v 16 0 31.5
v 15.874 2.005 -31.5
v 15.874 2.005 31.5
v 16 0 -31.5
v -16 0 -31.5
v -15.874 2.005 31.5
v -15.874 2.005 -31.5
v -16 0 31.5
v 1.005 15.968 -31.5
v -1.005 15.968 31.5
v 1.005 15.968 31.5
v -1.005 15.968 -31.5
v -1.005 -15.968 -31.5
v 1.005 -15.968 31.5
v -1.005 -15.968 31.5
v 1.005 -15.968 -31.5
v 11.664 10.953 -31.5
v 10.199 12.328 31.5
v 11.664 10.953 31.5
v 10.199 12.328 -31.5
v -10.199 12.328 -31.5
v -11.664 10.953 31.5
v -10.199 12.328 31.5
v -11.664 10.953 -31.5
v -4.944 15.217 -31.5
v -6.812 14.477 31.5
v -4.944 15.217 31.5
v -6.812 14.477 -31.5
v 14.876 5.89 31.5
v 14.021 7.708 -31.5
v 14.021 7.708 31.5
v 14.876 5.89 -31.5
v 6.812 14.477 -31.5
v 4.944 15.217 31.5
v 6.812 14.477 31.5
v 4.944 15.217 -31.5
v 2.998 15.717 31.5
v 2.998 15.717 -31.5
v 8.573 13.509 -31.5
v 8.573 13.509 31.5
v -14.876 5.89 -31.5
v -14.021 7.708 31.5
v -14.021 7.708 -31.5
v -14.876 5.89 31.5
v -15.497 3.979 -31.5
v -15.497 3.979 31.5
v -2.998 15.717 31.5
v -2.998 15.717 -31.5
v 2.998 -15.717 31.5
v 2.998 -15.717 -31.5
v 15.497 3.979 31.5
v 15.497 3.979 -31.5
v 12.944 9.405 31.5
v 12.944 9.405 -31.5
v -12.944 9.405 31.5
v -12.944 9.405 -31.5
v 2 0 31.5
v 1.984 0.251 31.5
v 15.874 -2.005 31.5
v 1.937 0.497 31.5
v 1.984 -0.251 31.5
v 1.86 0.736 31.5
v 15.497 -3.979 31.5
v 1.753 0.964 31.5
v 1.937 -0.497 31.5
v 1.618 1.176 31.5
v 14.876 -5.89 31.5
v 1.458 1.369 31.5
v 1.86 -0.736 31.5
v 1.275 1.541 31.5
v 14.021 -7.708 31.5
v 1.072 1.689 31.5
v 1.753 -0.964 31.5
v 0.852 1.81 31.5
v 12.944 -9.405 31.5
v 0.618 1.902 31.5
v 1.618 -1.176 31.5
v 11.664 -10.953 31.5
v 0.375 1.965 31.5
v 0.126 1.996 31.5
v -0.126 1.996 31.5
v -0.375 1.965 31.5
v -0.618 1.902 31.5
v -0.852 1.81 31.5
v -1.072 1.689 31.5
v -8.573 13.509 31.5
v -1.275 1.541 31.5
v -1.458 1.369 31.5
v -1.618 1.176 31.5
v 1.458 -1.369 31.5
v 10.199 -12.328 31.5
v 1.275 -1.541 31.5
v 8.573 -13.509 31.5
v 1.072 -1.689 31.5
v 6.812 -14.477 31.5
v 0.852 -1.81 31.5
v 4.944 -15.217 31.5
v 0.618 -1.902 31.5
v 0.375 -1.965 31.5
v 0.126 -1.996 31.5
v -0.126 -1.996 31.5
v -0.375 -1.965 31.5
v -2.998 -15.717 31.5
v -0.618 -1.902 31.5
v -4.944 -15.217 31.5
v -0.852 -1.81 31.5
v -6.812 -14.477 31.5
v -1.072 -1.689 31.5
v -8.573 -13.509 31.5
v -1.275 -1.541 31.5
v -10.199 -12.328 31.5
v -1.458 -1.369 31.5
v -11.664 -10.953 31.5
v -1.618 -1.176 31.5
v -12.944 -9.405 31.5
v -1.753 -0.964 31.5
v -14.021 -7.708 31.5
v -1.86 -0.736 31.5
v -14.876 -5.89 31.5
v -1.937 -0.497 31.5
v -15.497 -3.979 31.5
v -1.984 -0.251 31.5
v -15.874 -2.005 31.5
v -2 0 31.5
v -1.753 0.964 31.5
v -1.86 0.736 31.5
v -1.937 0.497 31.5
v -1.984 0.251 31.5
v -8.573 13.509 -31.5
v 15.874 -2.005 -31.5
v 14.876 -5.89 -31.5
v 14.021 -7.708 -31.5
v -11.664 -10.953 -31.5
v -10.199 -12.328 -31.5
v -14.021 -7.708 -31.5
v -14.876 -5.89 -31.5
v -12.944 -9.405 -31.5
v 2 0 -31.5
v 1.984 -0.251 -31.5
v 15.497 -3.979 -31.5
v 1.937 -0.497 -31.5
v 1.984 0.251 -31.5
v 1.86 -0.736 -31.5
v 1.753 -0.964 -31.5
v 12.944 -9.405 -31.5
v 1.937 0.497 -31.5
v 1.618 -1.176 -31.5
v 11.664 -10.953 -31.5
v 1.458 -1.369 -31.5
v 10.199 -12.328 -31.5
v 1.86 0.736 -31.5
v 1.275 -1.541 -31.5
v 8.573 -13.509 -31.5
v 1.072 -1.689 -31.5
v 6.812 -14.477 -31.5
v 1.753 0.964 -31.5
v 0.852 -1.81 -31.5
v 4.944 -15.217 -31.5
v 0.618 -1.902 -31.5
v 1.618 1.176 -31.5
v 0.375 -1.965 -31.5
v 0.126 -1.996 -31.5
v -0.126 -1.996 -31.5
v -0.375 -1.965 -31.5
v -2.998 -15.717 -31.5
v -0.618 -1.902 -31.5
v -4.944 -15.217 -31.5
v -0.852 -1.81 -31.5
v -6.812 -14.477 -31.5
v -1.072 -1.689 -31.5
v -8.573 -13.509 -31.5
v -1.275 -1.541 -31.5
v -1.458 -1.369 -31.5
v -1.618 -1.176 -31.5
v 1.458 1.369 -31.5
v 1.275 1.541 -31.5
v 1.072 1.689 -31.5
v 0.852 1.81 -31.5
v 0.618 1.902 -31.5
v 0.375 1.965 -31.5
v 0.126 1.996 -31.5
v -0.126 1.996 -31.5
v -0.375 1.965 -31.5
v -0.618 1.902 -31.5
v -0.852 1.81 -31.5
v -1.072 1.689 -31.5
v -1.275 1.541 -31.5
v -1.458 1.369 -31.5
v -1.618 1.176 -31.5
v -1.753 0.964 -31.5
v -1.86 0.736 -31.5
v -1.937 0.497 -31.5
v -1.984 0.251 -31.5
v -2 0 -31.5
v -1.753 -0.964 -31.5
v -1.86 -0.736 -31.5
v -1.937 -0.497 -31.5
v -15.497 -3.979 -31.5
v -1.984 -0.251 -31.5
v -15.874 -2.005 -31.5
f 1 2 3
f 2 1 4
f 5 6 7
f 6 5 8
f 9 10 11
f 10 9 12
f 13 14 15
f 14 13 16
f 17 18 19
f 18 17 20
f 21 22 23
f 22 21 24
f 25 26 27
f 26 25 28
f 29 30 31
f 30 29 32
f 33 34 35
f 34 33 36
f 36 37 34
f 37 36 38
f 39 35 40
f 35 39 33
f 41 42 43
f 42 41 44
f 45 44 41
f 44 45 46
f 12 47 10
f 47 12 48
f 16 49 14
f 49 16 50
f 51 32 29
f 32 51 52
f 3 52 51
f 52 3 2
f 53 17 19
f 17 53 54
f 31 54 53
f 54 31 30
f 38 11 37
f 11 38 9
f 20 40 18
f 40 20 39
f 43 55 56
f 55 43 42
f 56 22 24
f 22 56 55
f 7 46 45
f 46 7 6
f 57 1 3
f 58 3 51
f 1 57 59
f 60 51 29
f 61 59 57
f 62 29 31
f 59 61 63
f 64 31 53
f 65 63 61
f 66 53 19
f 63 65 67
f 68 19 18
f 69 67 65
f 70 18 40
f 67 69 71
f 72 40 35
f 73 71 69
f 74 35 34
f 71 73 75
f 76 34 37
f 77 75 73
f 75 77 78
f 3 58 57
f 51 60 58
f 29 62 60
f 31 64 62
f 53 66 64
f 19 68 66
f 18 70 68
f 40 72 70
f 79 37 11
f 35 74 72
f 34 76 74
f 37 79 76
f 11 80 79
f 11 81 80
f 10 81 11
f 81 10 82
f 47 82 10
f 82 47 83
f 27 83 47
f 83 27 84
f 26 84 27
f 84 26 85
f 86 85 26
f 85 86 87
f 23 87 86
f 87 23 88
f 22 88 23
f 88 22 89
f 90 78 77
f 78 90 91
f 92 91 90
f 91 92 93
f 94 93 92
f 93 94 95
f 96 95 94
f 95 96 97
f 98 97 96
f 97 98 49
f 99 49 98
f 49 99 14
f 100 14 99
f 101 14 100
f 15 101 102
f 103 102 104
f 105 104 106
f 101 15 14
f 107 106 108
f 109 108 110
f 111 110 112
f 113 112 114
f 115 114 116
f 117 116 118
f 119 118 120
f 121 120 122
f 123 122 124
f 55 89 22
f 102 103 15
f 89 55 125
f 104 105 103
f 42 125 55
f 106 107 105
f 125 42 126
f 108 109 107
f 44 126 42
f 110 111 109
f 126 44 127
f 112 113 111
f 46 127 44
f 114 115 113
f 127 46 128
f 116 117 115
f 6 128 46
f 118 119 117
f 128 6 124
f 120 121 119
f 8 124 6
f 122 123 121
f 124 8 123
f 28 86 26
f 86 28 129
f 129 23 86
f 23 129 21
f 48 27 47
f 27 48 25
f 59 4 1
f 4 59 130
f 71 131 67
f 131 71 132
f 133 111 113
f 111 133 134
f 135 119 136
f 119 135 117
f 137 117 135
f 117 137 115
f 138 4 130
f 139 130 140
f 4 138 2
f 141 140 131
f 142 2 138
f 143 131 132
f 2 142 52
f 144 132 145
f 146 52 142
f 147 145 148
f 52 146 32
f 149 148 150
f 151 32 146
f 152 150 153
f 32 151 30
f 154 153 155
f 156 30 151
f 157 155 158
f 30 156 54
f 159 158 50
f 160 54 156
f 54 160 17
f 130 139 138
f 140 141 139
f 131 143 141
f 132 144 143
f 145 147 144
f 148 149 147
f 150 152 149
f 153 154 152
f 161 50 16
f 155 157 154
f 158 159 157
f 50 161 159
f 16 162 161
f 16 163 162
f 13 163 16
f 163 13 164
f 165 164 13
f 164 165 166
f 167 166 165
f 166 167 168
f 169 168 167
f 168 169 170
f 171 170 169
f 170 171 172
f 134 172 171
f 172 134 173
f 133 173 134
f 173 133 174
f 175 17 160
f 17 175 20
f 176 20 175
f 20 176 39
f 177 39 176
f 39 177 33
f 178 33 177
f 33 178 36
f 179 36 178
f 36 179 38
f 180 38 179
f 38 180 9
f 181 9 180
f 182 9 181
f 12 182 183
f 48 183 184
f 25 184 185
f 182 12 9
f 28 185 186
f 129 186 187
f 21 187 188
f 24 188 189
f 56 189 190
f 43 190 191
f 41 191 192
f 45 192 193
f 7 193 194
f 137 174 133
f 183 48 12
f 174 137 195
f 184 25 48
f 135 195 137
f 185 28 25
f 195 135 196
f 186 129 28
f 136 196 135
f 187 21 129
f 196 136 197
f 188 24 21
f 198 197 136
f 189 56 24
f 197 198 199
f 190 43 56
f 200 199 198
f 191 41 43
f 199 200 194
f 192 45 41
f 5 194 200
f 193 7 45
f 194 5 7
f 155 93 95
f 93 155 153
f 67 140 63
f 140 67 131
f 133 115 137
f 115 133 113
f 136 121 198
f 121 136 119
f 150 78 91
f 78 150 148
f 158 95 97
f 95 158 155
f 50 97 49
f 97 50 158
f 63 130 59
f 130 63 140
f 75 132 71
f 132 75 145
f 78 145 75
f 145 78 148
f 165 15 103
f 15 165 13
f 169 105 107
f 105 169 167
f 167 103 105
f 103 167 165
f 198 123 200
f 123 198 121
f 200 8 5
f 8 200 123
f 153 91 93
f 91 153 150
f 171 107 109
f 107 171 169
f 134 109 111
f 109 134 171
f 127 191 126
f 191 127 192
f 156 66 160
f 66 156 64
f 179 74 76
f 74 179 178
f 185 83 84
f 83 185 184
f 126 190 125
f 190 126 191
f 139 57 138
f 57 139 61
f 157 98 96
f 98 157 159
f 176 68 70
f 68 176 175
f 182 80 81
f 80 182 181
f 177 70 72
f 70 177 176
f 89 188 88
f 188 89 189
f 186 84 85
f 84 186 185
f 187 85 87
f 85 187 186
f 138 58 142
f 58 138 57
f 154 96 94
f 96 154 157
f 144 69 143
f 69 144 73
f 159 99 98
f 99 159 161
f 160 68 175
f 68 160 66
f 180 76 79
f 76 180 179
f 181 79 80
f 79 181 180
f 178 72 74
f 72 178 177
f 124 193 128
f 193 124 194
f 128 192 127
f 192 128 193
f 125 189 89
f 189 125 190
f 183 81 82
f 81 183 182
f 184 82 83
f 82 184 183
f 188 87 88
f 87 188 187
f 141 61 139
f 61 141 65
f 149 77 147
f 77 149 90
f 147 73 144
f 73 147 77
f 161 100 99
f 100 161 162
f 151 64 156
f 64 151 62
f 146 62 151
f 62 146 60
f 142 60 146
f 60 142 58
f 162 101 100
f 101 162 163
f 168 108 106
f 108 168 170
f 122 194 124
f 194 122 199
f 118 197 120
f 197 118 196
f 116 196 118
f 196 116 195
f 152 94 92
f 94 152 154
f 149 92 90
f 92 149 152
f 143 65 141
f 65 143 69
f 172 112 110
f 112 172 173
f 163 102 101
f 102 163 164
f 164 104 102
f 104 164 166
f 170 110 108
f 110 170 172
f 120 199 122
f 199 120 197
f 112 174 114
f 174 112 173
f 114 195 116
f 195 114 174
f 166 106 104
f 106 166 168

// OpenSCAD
$fn = 50;


difference() {
	union() {
		translate(v = [0, 0, -31.5000000000]) {
			cylinder(h = 63, r = 16.0000000000);
		}
	}
	union() {
		translate(v = [0, 0, -100.0000000000]) {
			cylinder(h = 200, r = 2);
		}
	}
}
